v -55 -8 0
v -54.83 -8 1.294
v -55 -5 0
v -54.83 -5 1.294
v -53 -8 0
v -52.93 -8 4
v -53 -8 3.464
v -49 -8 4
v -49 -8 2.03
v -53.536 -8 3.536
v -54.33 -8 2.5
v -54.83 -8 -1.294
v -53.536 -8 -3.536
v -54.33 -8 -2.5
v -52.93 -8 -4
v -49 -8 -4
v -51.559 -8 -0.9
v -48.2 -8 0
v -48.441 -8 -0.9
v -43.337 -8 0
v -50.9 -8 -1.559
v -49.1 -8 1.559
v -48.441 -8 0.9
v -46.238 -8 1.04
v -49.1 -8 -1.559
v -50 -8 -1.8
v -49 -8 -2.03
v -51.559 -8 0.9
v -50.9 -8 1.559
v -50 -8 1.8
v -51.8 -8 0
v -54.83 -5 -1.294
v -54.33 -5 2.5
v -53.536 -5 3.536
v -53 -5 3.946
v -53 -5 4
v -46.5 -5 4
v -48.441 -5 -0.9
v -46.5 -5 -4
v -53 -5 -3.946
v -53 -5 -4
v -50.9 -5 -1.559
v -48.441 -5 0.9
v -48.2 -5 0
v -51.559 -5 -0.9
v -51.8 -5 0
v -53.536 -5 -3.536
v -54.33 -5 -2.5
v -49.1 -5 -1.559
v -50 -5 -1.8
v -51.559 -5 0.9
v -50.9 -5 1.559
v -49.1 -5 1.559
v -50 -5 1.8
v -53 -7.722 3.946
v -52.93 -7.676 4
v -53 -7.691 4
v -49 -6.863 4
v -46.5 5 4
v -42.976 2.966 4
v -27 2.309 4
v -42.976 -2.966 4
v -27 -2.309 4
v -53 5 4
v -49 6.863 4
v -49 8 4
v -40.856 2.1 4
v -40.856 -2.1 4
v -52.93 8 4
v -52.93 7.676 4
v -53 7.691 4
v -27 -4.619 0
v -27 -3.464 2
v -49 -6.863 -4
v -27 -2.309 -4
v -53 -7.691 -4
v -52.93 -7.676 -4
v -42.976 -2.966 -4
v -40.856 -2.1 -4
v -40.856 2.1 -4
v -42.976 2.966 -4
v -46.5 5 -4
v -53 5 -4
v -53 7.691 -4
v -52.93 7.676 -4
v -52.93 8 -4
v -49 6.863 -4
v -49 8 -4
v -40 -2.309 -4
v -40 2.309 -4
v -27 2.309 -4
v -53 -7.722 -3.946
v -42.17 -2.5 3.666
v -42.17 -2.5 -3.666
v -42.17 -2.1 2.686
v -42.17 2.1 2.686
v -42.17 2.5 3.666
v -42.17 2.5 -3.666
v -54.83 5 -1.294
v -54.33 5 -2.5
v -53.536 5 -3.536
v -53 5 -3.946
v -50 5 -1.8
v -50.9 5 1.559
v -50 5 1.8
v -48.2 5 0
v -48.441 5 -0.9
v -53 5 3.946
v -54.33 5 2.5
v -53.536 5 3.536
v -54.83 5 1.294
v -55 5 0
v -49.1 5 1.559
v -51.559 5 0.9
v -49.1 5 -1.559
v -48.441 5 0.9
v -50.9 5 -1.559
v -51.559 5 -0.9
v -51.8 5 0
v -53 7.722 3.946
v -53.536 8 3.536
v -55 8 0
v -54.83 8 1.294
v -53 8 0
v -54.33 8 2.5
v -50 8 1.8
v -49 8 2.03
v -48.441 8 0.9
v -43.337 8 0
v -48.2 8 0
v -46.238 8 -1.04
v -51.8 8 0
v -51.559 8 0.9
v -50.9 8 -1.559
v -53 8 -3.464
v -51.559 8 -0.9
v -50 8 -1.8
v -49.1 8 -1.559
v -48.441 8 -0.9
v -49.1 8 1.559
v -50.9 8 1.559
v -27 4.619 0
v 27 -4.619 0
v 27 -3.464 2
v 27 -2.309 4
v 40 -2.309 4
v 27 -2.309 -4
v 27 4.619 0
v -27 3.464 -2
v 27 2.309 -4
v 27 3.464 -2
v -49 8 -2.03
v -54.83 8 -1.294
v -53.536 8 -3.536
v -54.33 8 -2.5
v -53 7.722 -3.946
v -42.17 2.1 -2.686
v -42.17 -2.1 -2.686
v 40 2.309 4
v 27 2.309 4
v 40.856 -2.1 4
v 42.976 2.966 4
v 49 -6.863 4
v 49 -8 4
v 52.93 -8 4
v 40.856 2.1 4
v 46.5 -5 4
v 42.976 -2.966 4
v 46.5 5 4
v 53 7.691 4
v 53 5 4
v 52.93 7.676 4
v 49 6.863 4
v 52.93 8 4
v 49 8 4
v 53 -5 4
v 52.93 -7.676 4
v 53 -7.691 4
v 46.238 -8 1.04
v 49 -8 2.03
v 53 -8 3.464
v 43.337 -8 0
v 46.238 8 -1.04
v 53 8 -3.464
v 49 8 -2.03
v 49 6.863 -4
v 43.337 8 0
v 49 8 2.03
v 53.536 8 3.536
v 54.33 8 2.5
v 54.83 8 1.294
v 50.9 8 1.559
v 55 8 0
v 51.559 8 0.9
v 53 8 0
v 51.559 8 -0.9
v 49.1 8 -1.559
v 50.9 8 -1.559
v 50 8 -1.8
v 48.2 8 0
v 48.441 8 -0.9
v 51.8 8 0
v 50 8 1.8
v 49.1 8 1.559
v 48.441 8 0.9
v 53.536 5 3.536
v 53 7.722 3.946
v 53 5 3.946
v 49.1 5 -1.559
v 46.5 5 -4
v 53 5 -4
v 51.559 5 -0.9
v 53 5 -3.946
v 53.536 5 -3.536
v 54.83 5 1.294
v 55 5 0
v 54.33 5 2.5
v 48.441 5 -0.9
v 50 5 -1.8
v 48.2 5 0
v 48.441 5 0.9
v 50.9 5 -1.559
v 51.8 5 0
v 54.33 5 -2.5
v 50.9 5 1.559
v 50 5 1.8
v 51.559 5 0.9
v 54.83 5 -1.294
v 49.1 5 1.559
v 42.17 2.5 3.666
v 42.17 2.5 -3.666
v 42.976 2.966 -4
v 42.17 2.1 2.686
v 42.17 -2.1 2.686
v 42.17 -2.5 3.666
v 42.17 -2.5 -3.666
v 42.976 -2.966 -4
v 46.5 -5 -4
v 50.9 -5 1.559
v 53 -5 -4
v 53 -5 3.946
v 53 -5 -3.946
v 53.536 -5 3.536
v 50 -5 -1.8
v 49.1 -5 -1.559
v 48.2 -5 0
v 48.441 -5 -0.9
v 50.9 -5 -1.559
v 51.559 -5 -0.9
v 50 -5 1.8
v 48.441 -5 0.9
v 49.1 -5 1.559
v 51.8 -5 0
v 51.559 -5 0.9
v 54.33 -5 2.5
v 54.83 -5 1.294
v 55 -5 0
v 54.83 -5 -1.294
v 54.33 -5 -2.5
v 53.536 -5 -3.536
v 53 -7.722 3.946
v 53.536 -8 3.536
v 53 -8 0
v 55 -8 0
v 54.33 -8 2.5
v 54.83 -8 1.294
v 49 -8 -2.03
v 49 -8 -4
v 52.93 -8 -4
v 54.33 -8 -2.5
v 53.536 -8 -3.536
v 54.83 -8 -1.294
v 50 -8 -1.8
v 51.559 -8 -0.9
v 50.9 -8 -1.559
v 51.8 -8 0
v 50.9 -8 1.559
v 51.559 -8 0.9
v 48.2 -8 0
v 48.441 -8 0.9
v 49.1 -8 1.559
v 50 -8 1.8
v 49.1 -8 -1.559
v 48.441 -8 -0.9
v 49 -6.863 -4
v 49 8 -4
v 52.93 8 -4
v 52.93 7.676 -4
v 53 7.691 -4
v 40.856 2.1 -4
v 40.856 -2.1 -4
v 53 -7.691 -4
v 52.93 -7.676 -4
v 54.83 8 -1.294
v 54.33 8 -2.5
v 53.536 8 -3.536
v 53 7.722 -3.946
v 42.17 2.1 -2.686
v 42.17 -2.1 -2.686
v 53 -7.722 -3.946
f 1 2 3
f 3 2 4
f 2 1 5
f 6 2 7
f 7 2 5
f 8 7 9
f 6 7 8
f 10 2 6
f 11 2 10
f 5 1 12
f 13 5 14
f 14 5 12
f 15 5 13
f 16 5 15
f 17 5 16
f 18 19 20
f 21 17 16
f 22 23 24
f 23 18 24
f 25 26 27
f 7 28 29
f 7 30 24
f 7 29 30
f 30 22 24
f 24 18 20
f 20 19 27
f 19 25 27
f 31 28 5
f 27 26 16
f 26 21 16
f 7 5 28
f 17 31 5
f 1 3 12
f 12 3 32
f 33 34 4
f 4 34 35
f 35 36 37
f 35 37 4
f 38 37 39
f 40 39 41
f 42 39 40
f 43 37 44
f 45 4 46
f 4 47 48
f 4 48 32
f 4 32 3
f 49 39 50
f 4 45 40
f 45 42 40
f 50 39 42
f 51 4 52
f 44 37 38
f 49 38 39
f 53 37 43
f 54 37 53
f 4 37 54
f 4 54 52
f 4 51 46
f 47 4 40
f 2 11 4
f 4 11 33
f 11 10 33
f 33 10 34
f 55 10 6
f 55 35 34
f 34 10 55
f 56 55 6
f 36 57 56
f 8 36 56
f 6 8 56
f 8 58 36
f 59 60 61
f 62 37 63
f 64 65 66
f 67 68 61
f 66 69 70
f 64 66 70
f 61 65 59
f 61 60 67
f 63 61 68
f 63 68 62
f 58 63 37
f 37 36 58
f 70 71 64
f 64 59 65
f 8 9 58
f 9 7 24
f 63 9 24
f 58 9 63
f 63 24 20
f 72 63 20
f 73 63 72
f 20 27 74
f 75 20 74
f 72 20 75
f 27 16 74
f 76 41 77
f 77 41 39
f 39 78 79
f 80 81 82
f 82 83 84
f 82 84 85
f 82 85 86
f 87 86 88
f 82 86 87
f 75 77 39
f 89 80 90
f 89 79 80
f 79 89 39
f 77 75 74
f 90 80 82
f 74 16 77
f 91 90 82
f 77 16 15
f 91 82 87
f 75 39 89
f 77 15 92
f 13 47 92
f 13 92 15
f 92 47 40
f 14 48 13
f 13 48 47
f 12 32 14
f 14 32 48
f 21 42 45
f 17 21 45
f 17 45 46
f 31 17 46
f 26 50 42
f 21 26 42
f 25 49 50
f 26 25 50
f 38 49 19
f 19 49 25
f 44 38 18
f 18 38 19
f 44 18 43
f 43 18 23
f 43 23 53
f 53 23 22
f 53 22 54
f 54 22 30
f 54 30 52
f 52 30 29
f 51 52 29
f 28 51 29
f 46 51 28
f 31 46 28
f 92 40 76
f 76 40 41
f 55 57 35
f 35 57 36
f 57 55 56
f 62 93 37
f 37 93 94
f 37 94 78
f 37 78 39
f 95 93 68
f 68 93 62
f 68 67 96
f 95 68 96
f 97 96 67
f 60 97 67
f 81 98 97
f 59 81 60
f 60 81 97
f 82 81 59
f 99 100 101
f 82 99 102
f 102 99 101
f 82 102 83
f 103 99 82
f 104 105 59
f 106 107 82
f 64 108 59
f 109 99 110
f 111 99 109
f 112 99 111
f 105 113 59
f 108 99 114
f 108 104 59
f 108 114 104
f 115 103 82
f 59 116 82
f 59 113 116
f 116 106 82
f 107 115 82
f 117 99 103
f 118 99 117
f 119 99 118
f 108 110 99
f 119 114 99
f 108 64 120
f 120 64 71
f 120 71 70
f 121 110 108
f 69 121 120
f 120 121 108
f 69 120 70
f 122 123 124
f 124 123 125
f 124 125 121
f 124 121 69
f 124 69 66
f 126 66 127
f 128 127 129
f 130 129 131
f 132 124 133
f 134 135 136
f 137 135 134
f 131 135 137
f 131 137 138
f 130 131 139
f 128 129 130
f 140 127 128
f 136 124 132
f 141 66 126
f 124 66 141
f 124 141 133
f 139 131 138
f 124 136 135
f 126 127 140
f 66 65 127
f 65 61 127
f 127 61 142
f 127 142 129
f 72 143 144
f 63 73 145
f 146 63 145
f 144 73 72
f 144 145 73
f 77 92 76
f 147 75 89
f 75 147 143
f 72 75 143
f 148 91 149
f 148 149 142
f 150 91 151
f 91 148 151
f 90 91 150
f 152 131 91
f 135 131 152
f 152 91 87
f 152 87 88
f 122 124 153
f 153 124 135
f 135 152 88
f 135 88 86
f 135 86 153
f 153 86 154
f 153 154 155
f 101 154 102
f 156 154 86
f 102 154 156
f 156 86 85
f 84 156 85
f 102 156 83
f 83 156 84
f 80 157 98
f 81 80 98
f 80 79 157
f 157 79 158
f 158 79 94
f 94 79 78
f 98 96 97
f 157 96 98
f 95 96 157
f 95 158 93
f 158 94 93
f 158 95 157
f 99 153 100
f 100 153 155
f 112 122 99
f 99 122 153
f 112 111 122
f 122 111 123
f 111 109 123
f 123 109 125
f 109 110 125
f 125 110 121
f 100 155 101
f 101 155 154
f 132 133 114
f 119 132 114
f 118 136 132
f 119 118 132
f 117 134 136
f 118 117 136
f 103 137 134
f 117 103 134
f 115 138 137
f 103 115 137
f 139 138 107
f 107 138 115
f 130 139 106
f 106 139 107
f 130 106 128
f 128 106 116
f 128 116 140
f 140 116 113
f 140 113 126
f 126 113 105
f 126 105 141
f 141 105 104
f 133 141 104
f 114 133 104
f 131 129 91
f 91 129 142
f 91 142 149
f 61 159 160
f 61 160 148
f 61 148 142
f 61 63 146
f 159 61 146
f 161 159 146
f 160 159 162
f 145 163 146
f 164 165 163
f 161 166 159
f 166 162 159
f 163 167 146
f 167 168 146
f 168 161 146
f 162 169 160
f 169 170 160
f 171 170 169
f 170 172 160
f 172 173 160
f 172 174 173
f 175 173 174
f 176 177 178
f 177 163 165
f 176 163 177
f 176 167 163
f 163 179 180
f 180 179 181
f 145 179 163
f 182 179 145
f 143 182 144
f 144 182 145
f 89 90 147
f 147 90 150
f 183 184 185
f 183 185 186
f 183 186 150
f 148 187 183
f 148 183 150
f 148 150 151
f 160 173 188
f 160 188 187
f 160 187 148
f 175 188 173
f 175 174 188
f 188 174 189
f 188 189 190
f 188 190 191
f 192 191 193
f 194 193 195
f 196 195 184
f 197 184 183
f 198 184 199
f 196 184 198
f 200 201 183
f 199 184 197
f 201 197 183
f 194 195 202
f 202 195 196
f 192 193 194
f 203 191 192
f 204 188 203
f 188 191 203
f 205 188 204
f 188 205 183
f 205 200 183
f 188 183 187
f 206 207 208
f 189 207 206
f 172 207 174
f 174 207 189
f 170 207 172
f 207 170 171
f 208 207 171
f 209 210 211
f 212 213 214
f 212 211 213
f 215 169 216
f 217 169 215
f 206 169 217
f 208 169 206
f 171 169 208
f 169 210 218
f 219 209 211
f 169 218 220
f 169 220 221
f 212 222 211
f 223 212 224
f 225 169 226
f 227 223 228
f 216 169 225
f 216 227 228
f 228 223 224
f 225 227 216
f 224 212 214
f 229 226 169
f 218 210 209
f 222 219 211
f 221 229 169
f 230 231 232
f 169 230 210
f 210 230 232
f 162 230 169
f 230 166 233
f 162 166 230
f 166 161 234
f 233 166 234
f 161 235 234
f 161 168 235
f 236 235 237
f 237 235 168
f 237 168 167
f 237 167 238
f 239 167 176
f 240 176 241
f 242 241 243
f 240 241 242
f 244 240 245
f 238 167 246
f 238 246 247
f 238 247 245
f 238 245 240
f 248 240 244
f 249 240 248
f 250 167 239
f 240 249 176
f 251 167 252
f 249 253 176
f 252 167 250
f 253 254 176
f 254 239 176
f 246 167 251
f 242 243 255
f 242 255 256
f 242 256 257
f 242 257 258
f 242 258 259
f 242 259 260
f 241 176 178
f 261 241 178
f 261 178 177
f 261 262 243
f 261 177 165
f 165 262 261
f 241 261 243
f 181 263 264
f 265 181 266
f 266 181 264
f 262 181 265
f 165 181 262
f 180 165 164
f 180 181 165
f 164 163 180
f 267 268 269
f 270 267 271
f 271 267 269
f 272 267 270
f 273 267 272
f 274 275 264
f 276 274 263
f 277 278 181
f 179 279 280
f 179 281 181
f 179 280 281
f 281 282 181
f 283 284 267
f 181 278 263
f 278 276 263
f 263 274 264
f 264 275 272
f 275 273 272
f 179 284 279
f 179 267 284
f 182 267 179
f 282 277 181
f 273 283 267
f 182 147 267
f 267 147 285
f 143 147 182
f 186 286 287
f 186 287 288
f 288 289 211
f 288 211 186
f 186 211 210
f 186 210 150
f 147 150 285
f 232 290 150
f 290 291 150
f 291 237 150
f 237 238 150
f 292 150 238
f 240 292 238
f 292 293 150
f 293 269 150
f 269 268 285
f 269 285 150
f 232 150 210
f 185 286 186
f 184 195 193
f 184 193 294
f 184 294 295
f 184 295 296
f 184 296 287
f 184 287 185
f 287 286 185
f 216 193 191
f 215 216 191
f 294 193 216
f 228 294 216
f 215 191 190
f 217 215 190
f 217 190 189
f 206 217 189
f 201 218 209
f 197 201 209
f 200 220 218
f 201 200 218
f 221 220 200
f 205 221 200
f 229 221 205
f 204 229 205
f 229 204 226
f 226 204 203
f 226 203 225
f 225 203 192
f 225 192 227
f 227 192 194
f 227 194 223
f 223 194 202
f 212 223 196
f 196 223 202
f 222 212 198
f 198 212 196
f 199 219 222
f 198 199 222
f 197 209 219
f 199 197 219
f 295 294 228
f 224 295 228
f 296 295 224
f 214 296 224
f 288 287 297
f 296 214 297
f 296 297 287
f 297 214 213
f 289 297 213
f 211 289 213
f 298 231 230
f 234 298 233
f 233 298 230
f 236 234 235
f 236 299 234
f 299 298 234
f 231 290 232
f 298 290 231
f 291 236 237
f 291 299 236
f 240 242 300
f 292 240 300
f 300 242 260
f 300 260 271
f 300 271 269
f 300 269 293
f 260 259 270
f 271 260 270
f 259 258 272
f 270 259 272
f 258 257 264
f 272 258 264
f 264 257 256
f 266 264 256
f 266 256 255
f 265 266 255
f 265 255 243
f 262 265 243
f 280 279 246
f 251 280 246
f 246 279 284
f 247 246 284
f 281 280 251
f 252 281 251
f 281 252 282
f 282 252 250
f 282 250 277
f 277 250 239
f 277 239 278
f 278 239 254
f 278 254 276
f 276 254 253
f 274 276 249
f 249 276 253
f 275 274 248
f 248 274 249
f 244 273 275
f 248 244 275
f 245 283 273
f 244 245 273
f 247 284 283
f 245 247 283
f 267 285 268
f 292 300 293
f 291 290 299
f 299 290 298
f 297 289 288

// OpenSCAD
// file: configuration.scad
//Configuration File
//Lets you adjust pretty much everything
//
//Makes it all super paramatric
//


//Configuration Block
$fn = 20;
module configBlock(){
	difference(){
		cube([15,30,10],center=true);

		union(){  //Vertical Holes
			translate([0,10,5]) rotate([0,0,0]) cylinder(r=M3/2,h=10,center=true);
			translate([0,3,5]) rotate([0,0,0]) cylinder(r=M4/2,h=10,center=true);
			translate([0,-8,5]) rotate([0,0,0]) cylinder(r=M8/2,h=10,center=true);
		}

		union(){  //Horizontal Holes
			translate([-8,10,0]) rotate([0,90,0]) cylinder(r=M3h/2,h=10,center=true);		
			translate([-8,3,0]) rotate([0,90,0]) cylinder(r=M4h/2,h=10,center=true);
			translate([-10,-6,0]) rotate([0,90,0]) cylinder(r=M3nut/2,h=10,center=true,$fn=6);

			translate([10,3,0]) rotate([0,90,0]) cylinder(r=M3washer/2,h=10,center=true);


			//translate([0,-8,0]) rotate([0,90,0]) cylinder(r=M8/2,h=10,center=true);
		}
	}
}

//configBlock();

//Bolts
M3 = 4;
M4 = 5;
M8 = 9;

M3h = 3.6;  //Horizontal versions
M4h = 5;  //Horizontal versions
M8h = 8; //Horizontal versions

//Nuts & Washers

M3washer = 7.4;
M3nut = 7.1;

//Size of other parts
rod = 8;  //Dimension of smooth rod
lm8uu = 16;

/*************************
 Printer Design files now
**************************/

//basic
arm_length = 100 ; //Length of the arms based on a planned 100x100 print size
pole_center = 60 ; //The pole distance from the center of the print
rod_sep = 25 + rod/2; // pole to pole seperation for one set. Includes rod length
rod_height = 260;

//motor end effector


//Universal joints
//holewidth = 6;
//arm_sep = 40;



//Hotend
// main file
include<configuration.scad>;

thickness = 6;
gap = 10;

h = (thickness+gap)/2;
r = h/2 / cos(30);




module jaws() {
  difference() {
    union() {
      intersection () {
        rotate([90, 0, 0]) cylinder(r=5, h=gap+thickness, center=true, $fn=24);
        translate([-4, 0, 0]) cube([10, gap+thickness, h], center=true);
      }
      intersection() {
        translate([10, 0, 0]) cube([26, gap+thickness, h], center=true);
        translate([10, 0, 0]) rotate([0, 90, 0]) rotate([0, 0, 30]) cylinder(r1=gap, r2=r, h=26, center=true, $fn=6);
      }
	
    }
	
	//Makin it look nice
    translate([-1.5, 0, 0]) cube([10, gap, 10], center=true);
    translate([3.5, 0, 0]) rotate([0, 0, 30]) cylinder(r=gap/2, h=10, center=true, $fn=6);
    translate([4, 0, 4]) rotate([0, 45, 0]) rotate([0, 0, 30]) cylinder(r=4.2, h=8, center=true, $fn=6);
    translate([4, 0, -4]) rotate([0, -45, 0]) rotate([0, 0, 30]) cylinder(r=4.2, h=8, center=true, $fn=6);

	//M3 Holes
    rotate([90, 0, 0]) cylinder(r=M3h/2, h=40, center=true, $fn=12);



  }
}

translate([-50, 0, 0]) jaws();
translate([50,0,0]) mirror([1,0,0]) jaws();
translate([0, 0, 0]) rotate([90, 0, 90]) cylinder(r=r, h=80, center=true, $fn=6);
